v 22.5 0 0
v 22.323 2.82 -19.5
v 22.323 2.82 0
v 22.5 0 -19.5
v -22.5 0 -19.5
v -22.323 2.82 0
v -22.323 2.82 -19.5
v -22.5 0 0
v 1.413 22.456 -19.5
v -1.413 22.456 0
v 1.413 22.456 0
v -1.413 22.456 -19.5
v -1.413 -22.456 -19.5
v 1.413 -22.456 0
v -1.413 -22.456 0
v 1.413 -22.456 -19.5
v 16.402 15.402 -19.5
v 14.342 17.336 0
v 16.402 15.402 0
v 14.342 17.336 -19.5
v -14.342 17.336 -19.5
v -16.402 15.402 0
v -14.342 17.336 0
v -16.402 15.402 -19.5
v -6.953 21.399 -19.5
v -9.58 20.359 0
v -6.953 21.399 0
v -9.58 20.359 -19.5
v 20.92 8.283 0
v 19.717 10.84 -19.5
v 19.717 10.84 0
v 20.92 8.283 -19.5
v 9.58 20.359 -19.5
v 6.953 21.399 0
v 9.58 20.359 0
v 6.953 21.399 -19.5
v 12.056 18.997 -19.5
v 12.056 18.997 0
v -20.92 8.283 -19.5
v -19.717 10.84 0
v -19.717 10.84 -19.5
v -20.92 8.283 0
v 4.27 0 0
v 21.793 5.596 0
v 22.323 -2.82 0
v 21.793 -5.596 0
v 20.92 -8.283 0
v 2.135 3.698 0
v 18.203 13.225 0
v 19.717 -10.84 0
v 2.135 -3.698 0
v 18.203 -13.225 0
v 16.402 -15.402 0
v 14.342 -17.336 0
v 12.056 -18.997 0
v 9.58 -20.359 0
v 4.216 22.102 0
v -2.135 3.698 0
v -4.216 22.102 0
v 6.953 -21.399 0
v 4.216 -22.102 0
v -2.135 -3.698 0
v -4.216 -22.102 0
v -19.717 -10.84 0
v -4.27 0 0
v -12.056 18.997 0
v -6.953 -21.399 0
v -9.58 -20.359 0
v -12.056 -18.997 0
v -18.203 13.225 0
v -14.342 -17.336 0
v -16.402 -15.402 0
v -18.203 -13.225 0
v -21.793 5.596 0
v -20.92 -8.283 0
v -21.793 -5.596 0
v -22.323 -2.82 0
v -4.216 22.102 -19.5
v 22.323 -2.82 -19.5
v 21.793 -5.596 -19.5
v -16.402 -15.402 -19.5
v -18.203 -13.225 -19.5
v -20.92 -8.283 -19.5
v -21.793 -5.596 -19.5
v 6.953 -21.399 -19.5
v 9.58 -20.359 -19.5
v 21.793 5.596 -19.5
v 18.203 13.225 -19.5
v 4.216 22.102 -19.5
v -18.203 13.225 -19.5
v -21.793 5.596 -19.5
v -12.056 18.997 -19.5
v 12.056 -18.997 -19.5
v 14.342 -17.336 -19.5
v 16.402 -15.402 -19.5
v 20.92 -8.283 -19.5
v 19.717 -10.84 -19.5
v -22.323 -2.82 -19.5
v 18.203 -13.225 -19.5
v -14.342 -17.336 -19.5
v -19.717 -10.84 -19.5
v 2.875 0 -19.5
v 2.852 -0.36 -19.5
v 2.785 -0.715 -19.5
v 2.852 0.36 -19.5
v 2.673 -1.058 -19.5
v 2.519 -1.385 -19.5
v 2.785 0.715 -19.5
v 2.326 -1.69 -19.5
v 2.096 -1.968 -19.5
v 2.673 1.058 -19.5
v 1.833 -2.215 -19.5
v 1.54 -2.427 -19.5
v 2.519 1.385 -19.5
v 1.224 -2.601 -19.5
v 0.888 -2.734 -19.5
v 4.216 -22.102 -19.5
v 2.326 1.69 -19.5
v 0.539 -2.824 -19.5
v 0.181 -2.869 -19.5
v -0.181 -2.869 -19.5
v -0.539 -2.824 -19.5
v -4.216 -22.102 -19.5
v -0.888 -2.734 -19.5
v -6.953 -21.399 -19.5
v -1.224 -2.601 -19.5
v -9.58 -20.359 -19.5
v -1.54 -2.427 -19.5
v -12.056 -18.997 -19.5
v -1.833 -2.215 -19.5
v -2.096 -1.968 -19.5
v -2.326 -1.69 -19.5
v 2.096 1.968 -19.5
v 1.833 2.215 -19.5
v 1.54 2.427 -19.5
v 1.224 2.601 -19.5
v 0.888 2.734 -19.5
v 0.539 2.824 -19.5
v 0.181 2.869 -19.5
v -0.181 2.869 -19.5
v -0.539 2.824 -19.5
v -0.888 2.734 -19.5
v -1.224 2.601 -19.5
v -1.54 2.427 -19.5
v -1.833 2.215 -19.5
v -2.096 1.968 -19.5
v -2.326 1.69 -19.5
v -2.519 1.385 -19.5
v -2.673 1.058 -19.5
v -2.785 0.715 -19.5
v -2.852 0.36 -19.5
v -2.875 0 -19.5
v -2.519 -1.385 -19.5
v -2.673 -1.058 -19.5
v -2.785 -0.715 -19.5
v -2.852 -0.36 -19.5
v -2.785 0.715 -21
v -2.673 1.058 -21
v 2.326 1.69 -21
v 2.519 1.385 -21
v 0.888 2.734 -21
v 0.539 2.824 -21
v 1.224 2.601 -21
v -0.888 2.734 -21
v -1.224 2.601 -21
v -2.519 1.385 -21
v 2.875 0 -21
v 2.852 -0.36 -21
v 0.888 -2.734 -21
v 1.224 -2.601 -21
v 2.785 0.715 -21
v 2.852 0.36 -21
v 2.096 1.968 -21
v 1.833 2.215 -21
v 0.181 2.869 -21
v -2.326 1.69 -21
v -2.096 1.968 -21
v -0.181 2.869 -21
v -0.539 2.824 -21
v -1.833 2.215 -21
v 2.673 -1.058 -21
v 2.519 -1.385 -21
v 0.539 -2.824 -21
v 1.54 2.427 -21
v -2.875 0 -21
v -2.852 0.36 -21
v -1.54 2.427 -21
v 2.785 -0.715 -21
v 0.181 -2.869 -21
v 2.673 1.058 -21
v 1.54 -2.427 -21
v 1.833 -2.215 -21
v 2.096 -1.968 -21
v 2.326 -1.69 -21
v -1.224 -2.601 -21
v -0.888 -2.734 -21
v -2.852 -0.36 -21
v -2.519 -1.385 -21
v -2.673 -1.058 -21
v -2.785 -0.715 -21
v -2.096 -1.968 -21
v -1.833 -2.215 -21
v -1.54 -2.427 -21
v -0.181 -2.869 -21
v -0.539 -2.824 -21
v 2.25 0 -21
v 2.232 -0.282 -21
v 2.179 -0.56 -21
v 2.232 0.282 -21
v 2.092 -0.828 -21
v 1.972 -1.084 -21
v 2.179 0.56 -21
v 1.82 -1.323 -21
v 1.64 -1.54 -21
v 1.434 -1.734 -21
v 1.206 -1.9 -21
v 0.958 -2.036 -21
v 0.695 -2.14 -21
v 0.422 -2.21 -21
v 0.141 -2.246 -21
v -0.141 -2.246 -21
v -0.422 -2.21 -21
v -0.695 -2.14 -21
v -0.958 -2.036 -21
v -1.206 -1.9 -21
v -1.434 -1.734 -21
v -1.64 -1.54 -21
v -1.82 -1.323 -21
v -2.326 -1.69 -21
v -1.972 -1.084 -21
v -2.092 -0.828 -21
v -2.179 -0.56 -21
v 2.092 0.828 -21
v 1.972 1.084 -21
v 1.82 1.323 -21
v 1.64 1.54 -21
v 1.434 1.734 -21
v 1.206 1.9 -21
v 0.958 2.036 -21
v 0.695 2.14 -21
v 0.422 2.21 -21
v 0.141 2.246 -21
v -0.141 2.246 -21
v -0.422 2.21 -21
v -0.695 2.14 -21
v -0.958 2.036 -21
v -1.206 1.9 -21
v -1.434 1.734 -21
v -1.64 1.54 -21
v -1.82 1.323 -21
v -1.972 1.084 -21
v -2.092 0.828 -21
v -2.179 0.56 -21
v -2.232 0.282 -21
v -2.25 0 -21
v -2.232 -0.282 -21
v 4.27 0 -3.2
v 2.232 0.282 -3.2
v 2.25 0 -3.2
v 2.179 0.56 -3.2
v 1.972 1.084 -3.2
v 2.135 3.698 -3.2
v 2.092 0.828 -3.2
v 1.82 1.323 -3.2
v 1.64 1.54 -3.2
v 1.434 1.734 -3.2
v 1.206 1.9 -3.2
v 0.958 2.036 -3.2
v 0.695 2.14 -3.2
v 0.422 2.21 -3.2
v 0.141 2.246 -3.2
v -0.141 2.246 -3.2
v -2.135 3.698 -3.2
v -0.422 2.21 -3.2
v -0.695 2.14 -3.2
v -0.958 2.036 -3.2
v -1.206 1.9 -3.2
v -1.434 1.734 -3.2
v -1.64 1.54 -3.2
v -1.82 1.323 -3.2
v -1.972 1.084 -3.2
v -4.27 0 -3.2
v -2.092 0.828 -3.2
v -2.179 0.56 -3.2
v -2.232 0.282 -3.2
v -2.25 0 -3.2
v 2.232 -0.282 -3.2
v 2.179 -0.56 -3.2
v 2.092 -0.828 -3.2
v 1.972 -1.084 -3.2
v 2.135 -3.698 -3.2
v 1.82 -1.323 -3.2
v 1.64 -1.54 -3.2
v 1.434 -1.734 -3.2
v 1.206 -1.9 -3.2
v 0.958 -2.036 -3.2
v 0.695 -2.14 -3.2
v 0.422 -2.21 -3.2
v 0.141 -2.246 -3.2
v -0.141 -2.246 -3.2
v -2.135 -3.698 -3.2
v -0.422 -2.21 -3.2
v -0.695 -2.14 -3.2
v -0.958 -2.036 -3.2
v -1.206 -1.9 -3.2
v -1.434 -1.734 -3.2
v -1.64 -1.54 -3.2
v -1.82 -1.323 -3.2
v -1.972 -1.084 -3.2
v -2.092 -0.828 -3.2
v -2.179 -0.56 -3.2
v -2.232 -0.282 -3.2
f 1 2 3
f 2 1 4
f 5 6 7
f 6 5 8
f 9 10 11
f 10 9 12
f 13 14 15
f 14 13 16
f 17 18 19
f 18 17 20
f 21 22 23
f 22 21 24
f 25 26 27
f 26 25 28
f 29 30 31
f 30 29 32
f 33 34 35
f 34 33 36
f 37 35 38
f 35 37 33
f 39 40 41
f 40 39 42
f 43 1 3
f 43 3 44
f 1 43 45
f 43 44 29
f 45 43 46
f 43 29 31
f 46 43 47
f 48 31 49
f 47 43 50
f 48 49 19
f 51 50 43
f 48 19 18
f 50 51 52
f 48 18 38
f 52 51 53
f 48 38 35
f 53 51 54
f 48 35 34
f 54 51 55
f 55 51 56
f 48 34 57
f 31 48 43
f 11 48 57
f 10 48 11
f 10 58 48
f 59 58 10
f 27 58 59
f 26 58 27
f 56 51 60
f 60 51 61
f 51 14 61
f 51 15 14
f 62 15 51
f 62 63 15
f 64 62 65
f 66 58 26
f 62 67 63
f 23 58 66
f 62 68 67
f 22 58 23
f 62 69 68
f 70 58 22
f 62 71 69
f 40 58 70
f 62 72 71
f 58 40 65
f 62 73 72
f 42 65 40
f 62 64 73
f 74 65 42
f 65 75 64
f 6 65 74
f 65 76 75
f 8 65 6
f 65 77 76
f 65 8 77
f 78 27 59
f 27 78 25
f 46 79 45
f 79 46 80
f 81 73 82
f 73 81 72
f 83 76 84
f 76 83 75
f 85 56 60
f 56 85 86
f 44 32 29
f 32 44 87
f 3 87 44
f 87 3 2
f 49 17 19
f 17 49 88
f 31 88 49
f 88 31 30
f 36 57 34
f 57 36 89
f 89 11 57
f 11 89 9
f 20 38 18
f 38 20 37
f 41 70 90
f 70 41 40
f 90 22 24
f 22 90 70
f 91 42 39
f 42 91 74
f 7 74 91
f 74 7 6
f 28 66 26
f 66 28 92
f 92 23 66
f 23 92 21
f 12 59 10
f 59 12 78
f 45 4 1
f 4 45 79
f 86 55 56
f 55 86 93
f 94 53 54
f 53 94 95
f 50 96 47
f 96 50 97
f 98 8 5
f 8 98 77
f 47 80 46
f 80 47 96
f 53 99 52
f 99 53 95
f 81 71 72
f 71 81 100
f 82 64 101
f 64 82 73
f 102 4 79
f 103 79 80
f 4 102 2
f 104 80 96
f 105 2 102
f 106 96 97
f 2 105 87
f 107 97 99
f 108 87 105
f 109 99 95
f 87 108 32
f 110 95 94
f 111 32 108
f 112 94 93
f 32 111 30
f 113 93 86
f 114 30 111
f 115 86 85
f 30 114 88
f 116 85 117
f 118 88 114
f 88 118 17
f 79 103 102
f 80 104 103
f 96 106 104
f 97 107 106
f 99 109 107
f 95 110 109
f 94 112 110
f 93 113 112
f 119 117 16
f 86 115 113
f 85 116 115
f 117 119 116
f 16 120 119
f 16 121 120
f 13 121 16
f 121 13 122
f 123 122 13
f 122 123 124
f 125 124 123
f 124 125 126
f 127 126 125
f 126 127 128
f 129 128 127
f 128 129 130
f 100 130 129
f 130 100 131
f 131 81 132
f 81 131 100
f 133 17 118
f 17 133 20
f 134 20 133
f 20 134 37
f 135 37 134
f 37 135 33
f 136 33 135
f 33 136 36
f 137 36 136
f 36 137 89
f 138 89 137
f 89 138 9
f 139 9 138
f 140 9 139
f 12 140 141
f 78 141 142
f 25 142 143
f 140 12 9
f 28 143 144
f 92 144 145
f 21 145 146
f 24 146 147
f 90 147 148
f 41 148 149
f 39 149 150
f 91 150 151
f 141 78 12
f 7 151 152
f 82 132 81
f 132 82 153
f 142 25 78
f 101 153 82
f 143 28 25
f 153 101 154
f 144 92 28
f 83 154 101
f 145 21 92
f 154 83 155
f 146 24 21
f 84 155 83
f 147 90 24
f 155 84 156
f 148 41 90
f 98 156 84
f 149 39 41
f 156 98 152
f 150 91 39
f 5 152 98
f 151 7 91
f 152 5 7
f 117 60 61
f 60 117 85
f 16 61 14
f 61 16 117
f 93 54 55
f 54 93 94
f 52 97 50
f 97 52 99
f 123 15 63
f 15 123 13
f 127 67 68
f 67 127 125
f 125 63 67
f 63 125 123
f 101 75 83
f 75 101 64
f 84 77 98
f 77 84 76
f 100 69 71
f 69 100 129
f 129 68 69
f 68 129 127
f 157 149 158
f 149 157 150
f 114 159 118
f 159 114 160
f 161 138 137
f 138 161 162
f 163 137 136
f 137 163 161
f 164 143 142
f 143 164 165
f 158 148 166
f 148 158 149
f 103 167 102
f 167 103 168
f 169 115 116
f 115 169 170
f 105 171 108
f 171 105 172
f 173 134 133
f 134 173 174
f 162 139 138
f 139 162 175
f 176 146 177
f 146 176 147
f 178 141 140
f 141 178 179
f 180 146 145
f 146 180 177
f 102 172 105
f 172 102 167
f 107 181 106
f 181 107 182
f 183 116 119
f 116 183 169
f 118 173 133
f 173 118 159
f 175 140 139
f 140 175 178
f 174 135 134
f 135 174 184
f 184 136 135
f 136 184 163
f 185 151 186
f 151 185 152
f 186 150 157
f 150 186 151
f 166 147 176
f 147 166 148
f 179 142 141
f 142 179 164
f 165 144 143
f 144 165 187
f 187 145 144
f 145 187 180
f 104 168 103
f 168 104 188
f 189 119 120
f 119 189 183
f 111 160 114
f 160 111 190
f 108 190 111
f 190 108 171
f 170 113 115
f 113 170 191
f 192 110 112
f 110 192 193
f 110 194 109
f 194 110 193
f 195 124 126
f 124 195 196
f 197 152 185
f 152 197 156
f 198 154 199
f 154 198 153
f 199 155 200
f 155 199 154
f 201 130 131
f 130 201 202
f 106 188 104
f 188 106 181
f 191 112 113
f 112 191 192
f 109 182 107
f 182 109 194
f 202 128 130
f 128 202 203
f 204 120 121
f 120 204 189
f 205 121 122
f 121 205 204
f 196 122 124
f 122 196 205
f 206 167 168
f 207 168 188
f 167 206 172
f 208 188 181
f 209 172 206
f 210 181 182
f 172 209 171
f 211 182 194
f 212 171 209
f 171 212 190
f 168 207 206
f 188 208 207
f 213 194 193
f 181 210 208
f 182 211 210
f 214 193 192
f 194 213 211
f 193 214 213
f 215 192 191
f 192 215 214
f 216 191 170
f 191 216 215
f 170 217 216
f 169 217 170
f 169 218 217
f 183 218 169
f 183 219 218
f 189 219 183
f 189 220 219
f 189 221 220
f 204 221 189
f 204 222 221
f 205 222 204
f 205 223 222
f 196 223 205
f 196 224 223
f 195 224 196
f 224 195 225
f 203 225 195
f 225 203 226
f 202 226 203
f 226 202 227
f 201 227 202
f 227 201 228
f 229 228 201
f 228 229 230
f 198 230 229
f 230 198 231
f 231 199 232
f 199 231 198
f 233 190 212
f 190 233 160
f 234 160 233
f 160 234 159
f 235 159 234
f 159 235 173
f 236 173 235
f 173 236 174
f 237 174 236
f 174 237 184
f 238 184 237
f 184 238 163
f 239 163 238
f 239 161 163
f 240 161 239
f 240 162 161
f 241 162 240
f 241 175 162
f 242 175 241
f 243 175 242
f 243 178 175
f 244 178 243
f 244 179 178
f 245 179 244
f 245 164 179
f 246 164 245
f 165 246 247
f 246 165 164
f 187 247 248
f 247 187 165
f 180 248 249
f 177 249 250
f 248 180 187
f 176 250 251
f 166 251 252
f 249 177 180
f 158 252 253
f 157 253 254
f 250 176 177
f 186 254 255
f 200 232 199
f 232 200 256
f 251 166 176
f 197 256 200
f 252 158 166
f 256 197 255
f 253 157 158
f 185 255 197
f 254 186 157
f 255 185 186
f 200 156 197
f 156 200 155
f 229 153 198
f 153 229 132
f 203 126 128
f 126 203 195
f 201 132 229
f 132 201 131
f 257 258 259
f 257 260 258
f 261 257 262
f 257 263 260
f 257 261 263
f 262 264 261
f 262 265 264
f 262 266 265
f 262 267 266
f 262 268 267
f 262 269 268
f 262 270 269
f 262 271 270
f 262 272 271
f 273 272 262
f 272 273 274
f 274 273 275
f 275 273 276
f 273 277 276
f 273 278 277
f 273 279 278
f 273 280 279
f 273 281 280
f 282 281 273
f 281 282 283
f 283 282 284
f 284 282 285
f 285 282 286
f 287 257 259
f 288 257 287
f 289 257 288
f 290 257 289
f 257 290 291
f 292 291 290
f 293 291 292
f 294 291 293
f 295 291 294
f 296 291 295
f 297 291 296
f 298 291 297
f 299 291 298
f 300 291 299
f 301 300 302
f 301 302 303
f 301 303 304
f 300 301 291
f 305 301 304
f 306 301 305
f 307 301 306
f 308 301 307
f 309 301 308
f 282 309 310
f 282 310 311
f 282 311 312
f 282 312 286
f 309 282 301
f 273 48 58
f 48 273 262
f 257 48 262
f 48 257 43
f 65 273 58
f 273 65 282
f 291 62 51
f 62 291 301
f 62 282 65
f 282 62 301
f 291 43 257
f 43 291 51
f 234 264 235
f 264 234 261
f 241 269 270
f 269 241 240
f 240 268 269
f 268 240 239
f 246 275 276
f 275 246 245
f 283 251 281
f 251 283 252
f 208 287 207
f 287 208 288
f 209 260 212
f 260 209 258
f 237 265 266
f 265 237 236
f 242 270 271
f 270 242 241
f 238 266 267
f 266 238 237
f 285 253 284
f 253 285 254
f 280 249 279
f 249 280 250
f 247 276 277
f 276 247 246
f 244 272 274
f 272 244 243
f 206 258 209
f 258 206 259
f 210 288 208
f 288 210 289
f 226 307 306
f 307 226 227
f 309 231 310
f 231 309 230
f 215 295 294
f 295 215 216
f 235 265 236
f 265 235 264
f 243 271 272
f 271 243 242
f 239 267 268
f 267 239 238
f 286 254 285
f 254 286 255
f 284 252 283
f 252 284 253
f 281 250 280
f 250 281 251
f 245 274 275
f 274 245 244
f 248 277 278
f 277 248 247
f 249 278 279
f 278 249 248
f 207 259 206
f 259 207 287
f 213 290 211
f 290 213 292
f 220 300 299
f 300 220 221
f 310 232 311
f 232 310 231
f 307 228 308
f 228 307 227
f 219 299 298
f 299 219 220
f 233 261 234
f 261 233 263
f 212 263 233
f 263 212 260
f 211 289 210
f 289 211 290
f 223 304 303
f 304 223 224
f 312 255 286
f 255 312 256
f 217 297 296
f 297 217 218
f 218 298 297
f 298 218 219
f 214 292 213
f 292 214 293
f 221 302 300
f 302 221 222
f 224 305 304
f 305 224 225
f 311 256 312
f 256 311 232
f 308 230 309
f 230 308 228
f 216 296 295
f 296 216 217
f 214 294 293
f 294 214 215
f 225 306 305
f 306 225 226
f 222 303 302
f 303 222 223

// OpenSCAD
$fn = 50;


difference() {
	union() {
		translate(v = [0, 0, -19.5000000000]) {
			cylinder(h = 19.5000000000, r = 22.5000000000);
		}
		#translate(v = [0, 0, -21.0000000000]) {
			cylinder(h = 21, r = 2.8750000000);
		}
	}
	union() {
		translate(v = [0, 0, 0]) {
			rotate(a = [0, 0, 0]) {
				difference() {
					union() {
						translate(v = [0, 0, -3.2000000000]) {
							linear_extrude(height = 3.2000000000) {
								polygon(points = [[4.2698000000, 0.0000000000], [2.1349000000, 3.6977552691], [-2.1349000000, 3.6977552691], [-4.2698000000, 0.0000000000], [-2.1349000000, -3.6977552691], [2.1349000000, -3.6977552691]]);
							}
						}
					}
					union();
				}
			}
		}
		#translate(v = [0, 0, -100.0000000000]) {
			cylinder(h = 200, r = 2.2500000000);
		}
	}
}
